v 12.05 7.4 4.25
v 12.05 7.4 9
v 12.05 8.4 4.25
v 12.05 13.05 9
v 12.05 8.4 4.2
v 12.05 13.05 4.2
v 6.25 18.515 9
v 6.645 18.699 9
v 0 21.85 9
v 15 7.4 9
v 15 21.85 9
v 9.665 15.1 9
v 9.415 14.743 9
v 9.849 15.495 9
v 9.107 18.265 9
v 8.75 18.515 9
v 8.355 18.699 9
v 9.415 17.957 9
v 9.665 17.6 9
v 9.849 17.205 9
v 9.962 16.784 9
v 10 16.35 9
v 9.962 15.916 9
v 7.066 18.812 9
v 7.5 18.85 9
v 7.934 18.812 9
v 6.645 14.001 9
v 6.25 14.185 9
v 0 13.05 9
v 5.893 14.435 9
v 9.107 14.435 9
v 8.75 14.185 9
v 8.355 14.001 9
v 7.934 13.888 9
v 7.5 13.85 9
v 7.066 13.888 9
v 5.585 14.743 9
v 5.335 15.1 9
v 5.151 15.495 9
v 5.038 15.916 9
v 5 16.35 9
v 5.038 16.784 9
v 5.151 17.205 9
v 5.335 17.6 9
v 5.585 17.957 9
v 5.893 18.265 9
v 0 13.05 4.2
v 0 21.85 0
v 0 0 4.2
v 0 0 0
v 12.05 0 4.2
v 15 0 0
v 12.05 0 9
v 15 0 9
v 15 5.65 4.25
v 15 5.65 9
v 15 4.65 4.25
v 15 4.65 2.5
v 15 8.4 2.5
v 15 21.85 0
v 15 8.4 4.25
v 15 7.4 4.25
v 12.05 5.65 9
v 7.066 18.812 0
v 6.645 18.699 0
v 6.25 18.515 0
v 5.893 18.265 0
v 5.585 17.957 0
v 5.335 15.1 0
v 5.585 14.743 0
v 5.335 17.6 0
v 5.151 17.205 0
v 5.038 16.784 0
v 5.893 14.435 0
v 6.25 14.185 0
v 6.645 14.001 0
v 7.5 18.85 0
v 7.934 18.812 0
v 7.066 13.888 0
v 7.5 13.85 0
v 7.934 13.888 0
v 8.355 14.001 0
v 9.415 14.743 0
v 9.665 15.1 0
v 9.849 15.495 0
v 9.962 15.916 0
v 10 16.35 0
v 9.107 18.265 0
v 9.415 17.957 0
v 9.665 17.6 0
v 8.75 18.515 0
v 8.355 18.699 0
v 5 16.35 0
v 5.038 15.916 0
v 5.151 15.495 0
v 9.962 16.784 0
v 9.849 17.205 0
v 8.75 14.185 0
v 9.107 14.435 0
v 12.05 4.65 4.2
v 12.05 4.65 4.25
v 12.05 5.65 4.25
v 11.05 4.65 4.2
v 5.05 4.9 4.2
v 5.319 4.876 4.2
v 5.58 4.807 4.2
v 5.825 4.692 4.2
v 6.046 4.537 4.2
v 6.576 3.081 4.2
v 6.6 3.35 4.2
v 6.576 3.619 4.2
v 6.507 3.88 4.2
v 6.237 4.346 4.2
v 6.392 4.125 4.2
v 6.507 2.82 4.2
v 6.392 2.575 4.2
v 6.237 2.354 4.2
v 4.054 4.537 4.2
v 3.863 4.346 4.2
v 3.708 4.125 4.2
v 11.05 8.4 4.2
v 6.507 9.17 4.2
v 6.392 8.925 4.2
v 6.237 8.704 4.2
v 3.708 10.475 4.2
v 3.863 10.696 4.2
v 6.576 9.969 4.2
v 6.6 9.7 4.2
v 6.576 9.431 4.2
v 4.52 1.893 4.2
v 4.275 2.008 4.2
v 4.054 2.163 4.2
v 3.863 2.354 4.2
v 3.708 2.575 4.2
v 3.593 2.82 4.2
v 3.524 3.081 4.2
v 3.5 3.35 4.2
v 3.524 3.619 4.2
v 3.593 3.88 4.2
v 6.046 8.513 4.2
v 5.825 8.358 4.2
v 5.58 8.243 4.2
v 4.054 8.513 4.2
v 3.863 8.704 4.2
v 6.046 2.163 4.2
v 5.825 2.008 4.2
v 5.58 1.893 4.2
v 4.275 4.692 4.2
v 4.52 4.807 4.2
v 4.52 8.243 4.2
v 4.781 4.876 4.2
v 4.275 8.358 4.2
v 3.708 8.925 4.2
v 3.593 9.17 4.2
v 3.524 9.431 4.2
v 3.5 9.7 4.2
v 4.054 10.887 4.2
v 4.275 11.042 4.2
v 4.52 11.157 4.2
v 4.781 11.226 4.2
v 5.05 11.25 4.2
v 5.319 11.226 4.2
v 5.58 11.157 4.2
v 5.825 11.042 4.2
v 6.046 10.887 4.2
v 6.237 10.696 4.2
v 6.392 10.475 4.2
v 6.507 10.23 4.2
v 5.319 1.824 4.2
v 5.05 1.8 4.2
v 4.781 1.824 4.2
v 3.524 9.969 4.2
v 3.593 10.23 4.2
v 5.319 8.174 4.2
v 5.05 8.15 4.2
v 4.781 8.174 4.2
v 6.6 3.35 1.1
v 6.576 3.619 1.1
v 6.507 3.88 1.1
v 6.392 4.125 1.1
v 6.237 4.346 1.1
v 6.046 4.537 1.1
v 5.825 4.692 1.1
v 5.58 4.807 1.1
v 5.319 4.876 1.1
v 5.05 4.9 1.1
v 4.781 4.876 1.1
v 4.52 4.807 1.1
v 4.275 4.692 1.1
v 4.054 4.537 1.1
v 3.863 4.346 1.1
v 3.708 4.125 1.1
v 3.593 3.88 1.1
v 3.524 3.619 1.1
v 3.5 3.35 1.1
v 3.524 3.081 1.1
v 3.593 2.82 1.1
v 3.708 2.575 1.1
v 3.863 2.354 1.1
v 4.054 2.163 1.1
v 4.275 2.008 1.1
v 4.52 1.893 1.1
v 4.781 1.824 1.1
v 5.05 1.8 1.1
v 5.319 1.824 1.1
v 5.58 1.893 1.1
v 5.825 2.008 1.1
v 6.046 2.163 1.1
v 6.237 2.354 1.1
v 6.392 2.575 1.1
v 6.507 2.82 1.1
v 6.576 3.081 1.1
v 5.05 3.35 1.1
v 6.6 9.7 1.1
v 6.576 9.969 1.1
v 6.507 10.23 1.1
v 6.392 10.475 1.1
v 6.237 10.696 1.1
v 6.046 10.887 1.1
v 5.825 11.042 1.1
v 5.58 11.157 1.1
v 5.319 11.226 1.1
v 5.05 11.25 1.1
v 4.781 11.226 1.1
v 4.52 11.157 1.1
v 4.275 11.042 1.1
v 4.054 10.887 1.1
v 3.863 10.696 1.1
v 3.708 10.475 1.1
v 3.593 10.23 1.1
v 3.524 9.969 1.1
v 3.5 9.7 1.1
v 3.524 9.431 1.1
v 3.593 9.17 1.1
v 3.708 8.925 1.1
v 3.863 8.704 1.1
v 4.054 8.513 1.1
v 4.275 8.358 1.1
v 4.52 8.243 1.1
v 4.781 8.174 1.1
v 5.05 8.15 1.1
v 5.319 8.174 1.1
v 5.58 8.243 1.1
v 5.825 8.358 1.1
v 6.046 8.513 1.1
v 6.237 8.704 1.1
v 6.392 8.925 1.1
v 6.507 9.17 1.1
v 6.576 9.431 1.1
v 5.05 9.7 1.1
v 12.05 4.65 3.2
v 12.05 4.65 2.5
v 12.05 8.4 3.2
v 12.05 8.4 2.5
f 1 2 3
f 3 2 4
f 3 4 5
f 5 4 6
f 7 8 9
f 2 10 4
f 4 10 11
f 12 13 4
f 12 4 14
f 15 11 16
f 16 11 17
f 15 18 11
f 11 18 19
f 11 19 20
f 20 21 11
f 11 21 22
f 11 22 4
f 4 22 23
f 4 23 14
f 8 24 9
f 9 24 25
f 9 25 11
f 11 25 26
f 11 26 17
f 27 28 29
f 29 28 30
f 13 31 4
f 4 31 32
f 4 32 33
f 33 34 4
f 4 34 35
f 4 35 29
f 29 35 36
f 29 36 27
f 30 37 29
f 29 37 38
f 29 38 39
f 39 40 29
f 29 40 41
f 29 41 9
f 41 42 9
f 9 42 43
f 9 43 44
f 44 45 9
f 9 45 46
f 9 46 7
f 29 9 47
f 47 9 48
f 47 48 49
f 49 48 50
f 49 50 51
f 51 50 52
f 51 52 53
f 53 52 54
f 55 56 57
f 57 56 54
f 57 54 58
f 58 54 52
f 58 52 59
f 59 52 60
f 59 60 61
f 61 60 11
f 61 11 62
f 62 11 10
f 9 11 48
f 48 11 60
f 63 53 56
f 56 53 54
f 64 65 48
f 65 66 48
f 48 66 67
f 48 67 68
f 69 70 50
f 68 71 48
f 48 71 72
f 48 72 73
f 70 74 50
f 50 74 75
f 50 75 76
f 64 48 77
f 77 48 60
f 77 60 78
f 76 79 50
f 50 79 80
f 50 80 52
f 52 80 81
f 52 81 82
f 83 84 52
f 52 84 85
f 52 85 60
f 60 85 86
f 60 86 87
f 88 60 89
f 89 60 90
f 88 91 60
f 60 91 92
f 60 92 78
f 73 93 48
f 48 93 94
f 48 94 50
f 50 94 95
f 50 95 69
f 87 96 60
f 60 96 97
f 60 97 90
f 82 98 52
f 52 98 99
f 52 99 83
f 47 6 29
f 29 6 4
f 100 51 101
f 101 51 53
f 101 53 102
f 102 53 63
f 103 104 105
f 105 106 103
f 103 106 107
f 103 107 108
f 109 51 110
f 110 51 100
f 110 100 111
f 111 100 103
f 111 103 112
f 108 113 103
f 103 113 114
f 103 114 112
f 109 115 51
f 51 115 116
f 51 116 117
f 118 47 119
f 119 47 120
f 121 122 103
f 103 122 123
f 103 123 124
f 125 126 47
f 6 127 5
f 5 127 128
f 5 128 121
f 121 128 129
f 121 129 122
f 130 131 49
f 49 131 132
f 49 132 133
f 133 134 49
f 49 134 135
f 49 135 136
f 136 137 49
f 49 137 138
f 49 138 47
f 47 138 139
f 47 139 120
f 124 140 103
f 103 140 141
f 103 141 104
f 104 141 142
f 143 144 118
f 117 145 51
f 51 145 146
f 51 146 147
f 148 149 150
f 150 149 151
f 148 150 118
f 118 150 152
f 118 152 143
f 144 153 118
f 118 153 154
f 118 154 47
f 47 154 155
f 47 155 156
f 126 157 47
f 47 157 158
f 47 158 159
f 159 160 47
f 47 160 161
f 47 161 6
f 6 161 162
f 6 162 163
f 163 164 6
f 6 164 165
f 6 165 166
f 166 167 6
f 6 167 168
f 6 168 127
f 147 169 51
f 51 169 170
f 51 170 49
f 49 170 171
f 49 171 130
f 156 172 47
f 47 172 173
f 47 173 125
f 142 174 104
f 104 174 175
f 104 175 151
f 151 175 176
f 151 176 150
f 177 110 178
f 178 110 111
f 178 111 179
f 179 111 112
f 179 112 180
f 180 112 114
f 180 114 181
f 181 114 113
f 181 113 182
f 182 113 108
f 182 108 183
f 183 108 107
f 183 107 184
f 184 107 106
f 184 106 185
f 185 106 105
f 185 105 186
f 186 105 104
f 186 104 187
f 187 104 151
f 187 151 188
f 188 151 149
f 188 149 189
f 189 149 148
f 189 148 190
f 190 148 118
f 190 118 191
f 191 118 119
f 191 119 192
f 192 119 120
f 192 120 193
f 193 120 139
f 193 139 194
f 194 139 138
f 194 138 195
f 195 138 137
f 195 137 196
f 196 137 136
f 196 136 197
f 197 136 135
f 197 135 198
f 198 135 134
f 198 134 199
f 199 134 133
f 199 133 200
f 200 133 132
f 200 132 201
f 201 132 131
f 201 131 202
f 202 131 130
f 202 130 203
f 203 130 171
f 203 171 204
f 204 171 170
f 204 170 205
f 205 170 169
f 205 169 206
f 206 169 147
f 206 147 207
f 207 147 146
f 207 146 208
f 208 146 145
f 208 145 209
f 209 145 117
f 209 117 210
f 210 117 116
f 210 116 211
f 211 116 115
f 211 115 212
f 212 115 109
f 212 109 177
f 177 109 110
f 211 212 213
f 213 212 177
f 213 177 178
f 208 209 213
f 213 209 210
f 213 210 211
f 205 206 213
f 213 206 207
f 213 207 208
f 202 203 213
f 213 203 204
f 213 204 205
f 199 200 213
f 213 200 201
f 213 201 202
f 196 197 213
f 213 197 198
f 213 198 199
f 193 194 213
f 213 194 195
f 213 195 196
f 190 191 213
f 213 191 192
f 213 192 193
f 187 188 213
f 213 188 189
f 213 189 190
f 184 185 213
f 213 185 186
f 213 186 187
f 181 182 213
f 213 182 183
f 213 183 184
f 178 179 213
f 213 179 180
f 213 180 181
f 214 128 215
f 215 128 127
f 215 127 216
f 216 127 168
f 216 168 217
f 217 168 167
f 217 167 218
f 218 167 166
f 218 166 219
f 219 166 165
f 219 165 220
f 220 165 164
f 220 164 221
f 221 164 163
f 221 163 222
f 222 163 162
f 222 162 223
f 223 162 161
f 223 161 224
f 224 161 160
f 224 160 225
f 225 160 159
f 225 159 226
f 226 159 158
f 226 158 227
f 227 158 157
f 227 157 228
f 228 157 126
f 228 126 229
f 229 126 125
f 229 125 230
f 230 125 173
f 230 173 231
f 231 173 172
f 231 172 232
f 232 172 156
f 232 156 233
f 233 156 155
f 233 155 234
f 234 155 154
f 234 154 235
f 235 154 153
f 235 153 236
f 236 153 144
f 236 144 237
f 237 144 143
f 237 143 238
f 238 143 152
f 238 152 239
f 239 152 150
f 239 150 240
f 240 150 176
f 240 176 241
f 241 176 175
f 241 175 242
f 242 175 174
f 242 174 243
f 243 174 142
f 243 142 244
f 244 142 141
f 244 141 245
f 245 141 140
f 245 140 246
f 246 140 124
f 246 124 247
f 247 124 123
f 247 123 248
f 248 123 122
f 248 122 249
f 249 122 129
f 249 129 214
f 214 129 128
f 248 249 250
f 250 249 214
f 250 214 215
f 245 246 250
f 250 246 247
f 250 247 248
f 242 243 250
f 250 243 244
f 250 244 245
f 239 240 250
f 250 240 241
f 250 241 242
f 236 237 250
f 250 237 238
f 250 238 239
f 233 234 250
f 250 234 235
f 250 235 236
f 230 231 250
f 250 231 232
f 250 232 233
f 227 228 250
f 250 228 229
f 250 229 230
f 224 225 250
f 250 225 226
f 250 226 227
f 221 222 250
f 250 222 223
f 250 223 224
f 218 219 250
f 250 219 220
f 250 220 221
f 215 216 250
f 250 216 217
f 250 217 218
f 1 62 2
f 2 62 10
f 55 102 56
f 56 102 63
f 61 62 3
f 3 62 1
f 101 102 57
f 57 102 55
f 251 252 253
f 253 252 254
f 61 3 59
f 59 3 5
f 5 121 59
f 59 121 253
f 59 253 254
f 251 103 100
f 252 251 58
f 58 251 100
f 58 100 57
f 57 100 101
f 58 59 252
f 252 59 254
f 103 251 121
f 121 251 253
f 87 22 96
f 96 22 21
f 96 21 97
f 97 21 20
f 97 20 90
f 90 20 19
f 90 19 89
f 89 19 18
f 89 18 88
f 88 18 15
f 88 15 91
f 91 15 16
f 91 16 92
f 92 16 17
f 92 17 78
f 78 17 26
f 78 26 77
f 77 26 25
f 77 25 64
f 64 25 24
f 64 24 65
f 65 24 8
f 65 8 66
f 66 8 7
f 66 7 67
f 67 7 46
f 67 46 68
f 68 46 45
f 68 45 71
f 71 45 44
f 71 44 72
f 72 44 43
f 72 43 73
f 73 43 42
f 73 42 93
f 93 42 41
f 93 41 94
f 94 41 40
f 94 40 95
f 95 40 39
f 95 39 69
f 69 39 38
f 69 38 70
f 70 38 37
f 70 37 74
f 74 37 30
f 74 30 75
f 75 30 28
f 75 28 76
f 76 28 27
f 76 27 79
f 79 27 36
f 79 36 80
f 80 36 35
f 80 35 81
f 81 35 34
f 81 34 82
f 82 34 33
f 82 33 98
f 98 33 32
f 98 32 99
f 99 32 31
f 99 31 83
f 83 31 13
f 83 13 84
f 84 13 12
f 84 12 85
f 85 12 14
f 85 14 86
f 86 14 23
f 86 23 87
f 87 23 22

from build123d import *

# Parameters (mm, degrees)
PROFILESKETCH3_W                           = 15
PROFILESKETCH3_H                           = 21.85
PROFILEBOSS_EXTRUDE1_DEPTH                 = 9
MICROSWITCHCUTSKETCH4_W                    = 12.05
MICROSWITCHCUTSKETCH4_H                    = 13.05
MICROSWITCHCUT_EXTRUDE1_DEPTH              = 4.8
SKETCH5_R                                  = 1.55
MICROSWITCHMOUNTINGHOLESCUT_EXTRUDE2_DEPTH = 3.1
SMALLCHANNELCABLESKETCH6_W                 = 2.95
SMALLCHANNELCABLESKETCH6_H                 = 1.75
SMALLCHANNELCABLECUT_EXTRUDE3_DEPTH        = 4.75
LARGECHANNELCABLESKETCH7_W                 = 2.95
LARGECHANNELCABLESKETCH7_H                 = 3.75
LARGECHANNELCABLECUT_EXTRUDE4_DEPTH        = 1.75
CHAMFER1_SIZE                              = 1
SKETCH6_R                                  = 2.5
MICROSWITCHMOUNTINGHOLECUT_EXTRUDE1_DEPTH  = 28.9896856


with BuildPart() as part:
    # ProfileSketch3 → ProfileBoss-Extrude1 (new body)
    with BuildSketch(Plane.XY):
        with Locations((7.5, 10.925)):
            Rectangle(PROFILESKETCH3_W, PROFILESKETCH3_H)
    extrude(amount=PROFILEBOSS_EXTRUDE1_DEPTH)

    # MicroSwitchCutSketch4 → MicroSwitchCut-Extrude1 (cut)
    with BuildSketch(Plane.XY.offset(9)):
        with Locations((6.025, 6.525)):
            Rectangle(MICROSWITCHCUTSKETCH4_W, MICROSWITCHCUTSKETCH4_H)
    extrude(amount=-MICROSWITCHCUT_EXTRUDE1_DEPTH, mode=Mode.SUBTRACT)

    # Sketch5 → MicroSwitchMountingHolesCut-Extrude2 (cut)
    with BuildSketch(Plane.XY.offset(4.2)):
        with Locations((5.05, 9.7)):
            Circle(SKETCH5_R)
        with Locations((5.05, 3.35)):
            Circle(SKETCH5_R)
    extrude(amount=-MICROSWITCHMOUNTINGHOLESCUT_EXTRUDE2_DEPTH, mode=Mode.SUBTRACT)

    # SmallChannelCableSketch6 → SmallChannelCableCut-Extrude3 (cut)
    with BuildSketch(Plane.XY.offset(9)):
        with Locations((13.525, 6.525)):
            Rectangle(SMALLCHANNELCABLESKETCH6_W, SMALLCHANNELCABLESKETCH6_H)
    extrude(amount=-SMALLCHANNELCABLECUT_EXTRUDE3_DEPTH, mode=Mode.SUBTRACT)

    # LargeChannelCableSketch7 → LargeChannelCableCut-Extrude4 (cut)
    with BuildSketch(Plane.XY.offset(4.25)):
        with Locations((13.525, 6.525)):
            Rectangle(LARGECHANNELCABLESKETCH7_W, LARGECHANNELCABLESKETCH7_H)
    extrude(amount=-LARGECHANNELCABLECUT_EXTRUDE4_DEPTH, mode=Mode.SUBTRACT)

    # Chamfer1
    chamfer1_edges = [part.edges().sort_by_distance(p)[0] for p in [
        (12.05, 6.525, 4.2),
    ]]
    chamfer(chamfer1_edges, length=CHAMFER1_SIZE)

    # Sketch6 → MicroSwitchMountingHoleCut-Extrude1 (cut, through all)
    with BuildSketch(Plane.XY.offset(9)):
        with Locations((7.5, 16.35)):
            Circle(SKETCH6_R)
    extrude(amount=-MICROSWITCHMOUNTINGHOLECUT_EXTRUDE1_DEPTH, mode=Mode.SUBTRACT)


solid = part.part
